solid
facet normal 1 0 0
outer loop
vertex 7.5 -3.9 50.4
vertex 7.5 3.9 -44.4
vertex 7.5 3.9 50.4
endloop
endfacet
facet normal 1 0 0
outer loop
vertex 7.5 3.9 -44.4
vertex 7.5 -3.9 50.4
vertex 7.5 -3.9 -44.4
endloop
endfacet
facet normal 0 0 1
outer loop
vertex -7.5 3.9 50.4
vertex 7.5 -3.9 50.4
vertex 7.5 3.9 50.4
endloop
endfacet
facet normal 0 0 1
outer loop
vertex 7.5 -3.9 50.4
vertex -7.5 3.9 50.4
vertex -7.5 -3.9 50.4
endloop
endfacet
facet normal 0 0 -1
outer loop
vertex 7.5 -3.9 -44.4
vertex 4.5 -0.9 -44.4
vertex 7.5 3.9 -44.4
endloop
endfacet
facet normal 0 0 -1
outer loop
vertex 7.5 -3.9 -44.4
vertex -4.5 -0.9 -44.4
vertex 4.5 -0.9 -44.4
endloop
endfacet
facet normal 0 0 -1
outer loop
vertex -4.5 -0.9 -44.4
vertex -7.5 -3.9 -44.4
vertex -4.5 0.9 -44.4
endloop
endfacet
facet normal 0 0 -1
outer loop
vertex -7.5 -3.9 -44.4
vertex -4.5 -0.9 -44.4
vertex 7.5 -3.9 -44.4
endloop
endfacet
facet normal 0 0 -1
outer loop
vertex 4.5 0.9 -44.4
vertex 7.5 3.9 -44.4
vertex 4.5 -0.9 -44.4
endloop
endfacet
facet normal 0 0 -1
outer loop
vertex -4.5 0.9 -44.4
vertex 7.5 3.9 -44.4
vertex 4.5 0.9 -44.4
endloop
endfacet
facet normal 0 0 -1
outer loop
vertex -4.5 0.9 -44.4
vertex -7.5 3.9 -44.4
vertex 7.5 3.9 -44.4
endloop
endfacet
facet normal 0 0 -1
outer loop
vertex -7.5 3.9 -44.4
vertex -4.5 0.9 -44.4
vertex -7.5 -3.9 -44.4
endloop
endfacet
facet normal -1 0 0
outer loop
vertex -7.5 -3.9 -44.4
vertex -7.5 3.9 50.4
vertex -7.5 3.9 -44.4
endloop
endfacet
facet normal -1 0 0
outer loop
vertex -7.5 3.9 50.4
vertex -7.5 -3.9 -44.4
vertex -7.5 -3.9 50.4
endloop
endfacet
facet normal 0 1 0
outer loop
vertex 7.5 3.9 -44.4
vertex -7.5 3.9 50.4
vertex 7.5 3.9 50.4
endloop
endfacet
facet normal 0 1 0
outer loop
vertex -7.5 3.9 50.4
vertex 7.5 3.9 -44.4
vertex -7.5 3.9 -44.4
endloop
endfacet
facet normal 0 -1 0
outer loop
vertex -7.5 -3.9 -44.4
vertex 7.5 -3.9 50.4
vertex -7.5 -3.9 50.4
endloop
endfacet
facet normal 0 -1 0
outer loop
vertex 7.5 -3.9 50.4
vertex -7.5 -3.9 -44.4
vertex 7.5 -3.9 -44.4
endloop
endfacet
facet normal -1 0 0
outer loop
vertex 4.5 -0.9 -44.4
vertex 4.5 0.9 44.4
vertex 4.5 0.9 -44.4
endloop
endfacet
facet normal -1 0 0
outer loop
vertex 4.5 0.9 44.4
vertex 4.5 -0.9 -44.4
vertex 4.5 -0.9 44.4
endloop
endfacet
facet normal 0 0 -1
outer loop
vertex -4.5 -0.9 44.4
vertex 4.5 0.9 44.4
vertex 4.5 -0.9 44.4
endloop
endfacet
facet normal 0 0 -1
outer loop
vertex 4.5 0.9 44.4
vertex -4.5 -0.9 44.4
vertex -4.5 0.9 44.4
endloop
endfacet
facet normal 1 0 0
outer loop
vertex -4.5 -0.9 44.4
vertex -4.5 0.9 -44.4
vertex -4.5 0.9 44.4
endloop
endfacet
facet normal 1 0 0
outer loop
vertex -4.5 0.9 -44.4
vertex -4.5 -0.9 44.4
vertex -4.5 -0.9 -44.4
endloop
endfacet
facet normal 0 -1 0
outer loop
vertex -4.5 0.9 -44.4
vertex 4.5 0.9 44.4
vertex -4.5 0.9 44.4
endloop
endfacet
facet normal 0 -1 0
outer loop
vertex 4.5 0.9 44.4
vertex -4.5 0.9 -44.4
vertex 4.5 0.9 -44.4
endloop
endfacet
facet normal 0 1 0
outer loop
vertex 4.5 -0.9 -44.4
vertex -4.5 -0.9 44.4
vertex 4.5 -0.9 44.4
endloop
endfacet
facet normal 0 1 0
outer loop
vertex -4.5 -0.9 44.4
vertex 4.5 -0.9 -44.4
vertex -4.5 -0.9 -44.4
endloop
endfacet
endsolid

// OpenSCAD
//pumpkin carver blade cover
//add on to https://www.thingiverse.com/thing:4637250 awesome pumpkin carver holder for jigaw blades
// thicker blades along with lots of pumpkin guts make the lock harder to remove, and I wanted a bit more safety as I exert a lot of force around a blade - so this quick and simple cover
//justin lowe 20201104

//lock for handle is 19mm inner dimension width and height.
//thick and long jigsaw blade is 1.2mm thick, 7.4mm wide, 73.4mm long

bladeLength = 74;
bladeWidth = 7.5;
bladeDepth = 1.2;

innerWidth = bladeWidth*1.2;
innerLength = bladeLength*1.2;
innerDepth = bladeDepth*1.5;

echo("innerWidth = ", innerWidth);
echo("innerLength = ", innerLength);
echo("innerDepth = ", innerDepth);

wallThickness = 3;

outerWidth = innerWidth + wallThickness*2;
outerLength = innerLength + wallThickness*2; //keep as 2x and just have double thickness end cap?
outerDepth = innerDepth + wallThickness*2;


echo("outerWidth = ", outerWidth);
echo("outerLength = ", outerLength);
echo("outerDepth = ", outerDepth);

difference(){
    translate([0,0,wallThickness]){
        cube([outerWidth,outerDepth,outerLength],true);
    }
    cube([innerWidth,innerDepth,innerLength],true);
}
